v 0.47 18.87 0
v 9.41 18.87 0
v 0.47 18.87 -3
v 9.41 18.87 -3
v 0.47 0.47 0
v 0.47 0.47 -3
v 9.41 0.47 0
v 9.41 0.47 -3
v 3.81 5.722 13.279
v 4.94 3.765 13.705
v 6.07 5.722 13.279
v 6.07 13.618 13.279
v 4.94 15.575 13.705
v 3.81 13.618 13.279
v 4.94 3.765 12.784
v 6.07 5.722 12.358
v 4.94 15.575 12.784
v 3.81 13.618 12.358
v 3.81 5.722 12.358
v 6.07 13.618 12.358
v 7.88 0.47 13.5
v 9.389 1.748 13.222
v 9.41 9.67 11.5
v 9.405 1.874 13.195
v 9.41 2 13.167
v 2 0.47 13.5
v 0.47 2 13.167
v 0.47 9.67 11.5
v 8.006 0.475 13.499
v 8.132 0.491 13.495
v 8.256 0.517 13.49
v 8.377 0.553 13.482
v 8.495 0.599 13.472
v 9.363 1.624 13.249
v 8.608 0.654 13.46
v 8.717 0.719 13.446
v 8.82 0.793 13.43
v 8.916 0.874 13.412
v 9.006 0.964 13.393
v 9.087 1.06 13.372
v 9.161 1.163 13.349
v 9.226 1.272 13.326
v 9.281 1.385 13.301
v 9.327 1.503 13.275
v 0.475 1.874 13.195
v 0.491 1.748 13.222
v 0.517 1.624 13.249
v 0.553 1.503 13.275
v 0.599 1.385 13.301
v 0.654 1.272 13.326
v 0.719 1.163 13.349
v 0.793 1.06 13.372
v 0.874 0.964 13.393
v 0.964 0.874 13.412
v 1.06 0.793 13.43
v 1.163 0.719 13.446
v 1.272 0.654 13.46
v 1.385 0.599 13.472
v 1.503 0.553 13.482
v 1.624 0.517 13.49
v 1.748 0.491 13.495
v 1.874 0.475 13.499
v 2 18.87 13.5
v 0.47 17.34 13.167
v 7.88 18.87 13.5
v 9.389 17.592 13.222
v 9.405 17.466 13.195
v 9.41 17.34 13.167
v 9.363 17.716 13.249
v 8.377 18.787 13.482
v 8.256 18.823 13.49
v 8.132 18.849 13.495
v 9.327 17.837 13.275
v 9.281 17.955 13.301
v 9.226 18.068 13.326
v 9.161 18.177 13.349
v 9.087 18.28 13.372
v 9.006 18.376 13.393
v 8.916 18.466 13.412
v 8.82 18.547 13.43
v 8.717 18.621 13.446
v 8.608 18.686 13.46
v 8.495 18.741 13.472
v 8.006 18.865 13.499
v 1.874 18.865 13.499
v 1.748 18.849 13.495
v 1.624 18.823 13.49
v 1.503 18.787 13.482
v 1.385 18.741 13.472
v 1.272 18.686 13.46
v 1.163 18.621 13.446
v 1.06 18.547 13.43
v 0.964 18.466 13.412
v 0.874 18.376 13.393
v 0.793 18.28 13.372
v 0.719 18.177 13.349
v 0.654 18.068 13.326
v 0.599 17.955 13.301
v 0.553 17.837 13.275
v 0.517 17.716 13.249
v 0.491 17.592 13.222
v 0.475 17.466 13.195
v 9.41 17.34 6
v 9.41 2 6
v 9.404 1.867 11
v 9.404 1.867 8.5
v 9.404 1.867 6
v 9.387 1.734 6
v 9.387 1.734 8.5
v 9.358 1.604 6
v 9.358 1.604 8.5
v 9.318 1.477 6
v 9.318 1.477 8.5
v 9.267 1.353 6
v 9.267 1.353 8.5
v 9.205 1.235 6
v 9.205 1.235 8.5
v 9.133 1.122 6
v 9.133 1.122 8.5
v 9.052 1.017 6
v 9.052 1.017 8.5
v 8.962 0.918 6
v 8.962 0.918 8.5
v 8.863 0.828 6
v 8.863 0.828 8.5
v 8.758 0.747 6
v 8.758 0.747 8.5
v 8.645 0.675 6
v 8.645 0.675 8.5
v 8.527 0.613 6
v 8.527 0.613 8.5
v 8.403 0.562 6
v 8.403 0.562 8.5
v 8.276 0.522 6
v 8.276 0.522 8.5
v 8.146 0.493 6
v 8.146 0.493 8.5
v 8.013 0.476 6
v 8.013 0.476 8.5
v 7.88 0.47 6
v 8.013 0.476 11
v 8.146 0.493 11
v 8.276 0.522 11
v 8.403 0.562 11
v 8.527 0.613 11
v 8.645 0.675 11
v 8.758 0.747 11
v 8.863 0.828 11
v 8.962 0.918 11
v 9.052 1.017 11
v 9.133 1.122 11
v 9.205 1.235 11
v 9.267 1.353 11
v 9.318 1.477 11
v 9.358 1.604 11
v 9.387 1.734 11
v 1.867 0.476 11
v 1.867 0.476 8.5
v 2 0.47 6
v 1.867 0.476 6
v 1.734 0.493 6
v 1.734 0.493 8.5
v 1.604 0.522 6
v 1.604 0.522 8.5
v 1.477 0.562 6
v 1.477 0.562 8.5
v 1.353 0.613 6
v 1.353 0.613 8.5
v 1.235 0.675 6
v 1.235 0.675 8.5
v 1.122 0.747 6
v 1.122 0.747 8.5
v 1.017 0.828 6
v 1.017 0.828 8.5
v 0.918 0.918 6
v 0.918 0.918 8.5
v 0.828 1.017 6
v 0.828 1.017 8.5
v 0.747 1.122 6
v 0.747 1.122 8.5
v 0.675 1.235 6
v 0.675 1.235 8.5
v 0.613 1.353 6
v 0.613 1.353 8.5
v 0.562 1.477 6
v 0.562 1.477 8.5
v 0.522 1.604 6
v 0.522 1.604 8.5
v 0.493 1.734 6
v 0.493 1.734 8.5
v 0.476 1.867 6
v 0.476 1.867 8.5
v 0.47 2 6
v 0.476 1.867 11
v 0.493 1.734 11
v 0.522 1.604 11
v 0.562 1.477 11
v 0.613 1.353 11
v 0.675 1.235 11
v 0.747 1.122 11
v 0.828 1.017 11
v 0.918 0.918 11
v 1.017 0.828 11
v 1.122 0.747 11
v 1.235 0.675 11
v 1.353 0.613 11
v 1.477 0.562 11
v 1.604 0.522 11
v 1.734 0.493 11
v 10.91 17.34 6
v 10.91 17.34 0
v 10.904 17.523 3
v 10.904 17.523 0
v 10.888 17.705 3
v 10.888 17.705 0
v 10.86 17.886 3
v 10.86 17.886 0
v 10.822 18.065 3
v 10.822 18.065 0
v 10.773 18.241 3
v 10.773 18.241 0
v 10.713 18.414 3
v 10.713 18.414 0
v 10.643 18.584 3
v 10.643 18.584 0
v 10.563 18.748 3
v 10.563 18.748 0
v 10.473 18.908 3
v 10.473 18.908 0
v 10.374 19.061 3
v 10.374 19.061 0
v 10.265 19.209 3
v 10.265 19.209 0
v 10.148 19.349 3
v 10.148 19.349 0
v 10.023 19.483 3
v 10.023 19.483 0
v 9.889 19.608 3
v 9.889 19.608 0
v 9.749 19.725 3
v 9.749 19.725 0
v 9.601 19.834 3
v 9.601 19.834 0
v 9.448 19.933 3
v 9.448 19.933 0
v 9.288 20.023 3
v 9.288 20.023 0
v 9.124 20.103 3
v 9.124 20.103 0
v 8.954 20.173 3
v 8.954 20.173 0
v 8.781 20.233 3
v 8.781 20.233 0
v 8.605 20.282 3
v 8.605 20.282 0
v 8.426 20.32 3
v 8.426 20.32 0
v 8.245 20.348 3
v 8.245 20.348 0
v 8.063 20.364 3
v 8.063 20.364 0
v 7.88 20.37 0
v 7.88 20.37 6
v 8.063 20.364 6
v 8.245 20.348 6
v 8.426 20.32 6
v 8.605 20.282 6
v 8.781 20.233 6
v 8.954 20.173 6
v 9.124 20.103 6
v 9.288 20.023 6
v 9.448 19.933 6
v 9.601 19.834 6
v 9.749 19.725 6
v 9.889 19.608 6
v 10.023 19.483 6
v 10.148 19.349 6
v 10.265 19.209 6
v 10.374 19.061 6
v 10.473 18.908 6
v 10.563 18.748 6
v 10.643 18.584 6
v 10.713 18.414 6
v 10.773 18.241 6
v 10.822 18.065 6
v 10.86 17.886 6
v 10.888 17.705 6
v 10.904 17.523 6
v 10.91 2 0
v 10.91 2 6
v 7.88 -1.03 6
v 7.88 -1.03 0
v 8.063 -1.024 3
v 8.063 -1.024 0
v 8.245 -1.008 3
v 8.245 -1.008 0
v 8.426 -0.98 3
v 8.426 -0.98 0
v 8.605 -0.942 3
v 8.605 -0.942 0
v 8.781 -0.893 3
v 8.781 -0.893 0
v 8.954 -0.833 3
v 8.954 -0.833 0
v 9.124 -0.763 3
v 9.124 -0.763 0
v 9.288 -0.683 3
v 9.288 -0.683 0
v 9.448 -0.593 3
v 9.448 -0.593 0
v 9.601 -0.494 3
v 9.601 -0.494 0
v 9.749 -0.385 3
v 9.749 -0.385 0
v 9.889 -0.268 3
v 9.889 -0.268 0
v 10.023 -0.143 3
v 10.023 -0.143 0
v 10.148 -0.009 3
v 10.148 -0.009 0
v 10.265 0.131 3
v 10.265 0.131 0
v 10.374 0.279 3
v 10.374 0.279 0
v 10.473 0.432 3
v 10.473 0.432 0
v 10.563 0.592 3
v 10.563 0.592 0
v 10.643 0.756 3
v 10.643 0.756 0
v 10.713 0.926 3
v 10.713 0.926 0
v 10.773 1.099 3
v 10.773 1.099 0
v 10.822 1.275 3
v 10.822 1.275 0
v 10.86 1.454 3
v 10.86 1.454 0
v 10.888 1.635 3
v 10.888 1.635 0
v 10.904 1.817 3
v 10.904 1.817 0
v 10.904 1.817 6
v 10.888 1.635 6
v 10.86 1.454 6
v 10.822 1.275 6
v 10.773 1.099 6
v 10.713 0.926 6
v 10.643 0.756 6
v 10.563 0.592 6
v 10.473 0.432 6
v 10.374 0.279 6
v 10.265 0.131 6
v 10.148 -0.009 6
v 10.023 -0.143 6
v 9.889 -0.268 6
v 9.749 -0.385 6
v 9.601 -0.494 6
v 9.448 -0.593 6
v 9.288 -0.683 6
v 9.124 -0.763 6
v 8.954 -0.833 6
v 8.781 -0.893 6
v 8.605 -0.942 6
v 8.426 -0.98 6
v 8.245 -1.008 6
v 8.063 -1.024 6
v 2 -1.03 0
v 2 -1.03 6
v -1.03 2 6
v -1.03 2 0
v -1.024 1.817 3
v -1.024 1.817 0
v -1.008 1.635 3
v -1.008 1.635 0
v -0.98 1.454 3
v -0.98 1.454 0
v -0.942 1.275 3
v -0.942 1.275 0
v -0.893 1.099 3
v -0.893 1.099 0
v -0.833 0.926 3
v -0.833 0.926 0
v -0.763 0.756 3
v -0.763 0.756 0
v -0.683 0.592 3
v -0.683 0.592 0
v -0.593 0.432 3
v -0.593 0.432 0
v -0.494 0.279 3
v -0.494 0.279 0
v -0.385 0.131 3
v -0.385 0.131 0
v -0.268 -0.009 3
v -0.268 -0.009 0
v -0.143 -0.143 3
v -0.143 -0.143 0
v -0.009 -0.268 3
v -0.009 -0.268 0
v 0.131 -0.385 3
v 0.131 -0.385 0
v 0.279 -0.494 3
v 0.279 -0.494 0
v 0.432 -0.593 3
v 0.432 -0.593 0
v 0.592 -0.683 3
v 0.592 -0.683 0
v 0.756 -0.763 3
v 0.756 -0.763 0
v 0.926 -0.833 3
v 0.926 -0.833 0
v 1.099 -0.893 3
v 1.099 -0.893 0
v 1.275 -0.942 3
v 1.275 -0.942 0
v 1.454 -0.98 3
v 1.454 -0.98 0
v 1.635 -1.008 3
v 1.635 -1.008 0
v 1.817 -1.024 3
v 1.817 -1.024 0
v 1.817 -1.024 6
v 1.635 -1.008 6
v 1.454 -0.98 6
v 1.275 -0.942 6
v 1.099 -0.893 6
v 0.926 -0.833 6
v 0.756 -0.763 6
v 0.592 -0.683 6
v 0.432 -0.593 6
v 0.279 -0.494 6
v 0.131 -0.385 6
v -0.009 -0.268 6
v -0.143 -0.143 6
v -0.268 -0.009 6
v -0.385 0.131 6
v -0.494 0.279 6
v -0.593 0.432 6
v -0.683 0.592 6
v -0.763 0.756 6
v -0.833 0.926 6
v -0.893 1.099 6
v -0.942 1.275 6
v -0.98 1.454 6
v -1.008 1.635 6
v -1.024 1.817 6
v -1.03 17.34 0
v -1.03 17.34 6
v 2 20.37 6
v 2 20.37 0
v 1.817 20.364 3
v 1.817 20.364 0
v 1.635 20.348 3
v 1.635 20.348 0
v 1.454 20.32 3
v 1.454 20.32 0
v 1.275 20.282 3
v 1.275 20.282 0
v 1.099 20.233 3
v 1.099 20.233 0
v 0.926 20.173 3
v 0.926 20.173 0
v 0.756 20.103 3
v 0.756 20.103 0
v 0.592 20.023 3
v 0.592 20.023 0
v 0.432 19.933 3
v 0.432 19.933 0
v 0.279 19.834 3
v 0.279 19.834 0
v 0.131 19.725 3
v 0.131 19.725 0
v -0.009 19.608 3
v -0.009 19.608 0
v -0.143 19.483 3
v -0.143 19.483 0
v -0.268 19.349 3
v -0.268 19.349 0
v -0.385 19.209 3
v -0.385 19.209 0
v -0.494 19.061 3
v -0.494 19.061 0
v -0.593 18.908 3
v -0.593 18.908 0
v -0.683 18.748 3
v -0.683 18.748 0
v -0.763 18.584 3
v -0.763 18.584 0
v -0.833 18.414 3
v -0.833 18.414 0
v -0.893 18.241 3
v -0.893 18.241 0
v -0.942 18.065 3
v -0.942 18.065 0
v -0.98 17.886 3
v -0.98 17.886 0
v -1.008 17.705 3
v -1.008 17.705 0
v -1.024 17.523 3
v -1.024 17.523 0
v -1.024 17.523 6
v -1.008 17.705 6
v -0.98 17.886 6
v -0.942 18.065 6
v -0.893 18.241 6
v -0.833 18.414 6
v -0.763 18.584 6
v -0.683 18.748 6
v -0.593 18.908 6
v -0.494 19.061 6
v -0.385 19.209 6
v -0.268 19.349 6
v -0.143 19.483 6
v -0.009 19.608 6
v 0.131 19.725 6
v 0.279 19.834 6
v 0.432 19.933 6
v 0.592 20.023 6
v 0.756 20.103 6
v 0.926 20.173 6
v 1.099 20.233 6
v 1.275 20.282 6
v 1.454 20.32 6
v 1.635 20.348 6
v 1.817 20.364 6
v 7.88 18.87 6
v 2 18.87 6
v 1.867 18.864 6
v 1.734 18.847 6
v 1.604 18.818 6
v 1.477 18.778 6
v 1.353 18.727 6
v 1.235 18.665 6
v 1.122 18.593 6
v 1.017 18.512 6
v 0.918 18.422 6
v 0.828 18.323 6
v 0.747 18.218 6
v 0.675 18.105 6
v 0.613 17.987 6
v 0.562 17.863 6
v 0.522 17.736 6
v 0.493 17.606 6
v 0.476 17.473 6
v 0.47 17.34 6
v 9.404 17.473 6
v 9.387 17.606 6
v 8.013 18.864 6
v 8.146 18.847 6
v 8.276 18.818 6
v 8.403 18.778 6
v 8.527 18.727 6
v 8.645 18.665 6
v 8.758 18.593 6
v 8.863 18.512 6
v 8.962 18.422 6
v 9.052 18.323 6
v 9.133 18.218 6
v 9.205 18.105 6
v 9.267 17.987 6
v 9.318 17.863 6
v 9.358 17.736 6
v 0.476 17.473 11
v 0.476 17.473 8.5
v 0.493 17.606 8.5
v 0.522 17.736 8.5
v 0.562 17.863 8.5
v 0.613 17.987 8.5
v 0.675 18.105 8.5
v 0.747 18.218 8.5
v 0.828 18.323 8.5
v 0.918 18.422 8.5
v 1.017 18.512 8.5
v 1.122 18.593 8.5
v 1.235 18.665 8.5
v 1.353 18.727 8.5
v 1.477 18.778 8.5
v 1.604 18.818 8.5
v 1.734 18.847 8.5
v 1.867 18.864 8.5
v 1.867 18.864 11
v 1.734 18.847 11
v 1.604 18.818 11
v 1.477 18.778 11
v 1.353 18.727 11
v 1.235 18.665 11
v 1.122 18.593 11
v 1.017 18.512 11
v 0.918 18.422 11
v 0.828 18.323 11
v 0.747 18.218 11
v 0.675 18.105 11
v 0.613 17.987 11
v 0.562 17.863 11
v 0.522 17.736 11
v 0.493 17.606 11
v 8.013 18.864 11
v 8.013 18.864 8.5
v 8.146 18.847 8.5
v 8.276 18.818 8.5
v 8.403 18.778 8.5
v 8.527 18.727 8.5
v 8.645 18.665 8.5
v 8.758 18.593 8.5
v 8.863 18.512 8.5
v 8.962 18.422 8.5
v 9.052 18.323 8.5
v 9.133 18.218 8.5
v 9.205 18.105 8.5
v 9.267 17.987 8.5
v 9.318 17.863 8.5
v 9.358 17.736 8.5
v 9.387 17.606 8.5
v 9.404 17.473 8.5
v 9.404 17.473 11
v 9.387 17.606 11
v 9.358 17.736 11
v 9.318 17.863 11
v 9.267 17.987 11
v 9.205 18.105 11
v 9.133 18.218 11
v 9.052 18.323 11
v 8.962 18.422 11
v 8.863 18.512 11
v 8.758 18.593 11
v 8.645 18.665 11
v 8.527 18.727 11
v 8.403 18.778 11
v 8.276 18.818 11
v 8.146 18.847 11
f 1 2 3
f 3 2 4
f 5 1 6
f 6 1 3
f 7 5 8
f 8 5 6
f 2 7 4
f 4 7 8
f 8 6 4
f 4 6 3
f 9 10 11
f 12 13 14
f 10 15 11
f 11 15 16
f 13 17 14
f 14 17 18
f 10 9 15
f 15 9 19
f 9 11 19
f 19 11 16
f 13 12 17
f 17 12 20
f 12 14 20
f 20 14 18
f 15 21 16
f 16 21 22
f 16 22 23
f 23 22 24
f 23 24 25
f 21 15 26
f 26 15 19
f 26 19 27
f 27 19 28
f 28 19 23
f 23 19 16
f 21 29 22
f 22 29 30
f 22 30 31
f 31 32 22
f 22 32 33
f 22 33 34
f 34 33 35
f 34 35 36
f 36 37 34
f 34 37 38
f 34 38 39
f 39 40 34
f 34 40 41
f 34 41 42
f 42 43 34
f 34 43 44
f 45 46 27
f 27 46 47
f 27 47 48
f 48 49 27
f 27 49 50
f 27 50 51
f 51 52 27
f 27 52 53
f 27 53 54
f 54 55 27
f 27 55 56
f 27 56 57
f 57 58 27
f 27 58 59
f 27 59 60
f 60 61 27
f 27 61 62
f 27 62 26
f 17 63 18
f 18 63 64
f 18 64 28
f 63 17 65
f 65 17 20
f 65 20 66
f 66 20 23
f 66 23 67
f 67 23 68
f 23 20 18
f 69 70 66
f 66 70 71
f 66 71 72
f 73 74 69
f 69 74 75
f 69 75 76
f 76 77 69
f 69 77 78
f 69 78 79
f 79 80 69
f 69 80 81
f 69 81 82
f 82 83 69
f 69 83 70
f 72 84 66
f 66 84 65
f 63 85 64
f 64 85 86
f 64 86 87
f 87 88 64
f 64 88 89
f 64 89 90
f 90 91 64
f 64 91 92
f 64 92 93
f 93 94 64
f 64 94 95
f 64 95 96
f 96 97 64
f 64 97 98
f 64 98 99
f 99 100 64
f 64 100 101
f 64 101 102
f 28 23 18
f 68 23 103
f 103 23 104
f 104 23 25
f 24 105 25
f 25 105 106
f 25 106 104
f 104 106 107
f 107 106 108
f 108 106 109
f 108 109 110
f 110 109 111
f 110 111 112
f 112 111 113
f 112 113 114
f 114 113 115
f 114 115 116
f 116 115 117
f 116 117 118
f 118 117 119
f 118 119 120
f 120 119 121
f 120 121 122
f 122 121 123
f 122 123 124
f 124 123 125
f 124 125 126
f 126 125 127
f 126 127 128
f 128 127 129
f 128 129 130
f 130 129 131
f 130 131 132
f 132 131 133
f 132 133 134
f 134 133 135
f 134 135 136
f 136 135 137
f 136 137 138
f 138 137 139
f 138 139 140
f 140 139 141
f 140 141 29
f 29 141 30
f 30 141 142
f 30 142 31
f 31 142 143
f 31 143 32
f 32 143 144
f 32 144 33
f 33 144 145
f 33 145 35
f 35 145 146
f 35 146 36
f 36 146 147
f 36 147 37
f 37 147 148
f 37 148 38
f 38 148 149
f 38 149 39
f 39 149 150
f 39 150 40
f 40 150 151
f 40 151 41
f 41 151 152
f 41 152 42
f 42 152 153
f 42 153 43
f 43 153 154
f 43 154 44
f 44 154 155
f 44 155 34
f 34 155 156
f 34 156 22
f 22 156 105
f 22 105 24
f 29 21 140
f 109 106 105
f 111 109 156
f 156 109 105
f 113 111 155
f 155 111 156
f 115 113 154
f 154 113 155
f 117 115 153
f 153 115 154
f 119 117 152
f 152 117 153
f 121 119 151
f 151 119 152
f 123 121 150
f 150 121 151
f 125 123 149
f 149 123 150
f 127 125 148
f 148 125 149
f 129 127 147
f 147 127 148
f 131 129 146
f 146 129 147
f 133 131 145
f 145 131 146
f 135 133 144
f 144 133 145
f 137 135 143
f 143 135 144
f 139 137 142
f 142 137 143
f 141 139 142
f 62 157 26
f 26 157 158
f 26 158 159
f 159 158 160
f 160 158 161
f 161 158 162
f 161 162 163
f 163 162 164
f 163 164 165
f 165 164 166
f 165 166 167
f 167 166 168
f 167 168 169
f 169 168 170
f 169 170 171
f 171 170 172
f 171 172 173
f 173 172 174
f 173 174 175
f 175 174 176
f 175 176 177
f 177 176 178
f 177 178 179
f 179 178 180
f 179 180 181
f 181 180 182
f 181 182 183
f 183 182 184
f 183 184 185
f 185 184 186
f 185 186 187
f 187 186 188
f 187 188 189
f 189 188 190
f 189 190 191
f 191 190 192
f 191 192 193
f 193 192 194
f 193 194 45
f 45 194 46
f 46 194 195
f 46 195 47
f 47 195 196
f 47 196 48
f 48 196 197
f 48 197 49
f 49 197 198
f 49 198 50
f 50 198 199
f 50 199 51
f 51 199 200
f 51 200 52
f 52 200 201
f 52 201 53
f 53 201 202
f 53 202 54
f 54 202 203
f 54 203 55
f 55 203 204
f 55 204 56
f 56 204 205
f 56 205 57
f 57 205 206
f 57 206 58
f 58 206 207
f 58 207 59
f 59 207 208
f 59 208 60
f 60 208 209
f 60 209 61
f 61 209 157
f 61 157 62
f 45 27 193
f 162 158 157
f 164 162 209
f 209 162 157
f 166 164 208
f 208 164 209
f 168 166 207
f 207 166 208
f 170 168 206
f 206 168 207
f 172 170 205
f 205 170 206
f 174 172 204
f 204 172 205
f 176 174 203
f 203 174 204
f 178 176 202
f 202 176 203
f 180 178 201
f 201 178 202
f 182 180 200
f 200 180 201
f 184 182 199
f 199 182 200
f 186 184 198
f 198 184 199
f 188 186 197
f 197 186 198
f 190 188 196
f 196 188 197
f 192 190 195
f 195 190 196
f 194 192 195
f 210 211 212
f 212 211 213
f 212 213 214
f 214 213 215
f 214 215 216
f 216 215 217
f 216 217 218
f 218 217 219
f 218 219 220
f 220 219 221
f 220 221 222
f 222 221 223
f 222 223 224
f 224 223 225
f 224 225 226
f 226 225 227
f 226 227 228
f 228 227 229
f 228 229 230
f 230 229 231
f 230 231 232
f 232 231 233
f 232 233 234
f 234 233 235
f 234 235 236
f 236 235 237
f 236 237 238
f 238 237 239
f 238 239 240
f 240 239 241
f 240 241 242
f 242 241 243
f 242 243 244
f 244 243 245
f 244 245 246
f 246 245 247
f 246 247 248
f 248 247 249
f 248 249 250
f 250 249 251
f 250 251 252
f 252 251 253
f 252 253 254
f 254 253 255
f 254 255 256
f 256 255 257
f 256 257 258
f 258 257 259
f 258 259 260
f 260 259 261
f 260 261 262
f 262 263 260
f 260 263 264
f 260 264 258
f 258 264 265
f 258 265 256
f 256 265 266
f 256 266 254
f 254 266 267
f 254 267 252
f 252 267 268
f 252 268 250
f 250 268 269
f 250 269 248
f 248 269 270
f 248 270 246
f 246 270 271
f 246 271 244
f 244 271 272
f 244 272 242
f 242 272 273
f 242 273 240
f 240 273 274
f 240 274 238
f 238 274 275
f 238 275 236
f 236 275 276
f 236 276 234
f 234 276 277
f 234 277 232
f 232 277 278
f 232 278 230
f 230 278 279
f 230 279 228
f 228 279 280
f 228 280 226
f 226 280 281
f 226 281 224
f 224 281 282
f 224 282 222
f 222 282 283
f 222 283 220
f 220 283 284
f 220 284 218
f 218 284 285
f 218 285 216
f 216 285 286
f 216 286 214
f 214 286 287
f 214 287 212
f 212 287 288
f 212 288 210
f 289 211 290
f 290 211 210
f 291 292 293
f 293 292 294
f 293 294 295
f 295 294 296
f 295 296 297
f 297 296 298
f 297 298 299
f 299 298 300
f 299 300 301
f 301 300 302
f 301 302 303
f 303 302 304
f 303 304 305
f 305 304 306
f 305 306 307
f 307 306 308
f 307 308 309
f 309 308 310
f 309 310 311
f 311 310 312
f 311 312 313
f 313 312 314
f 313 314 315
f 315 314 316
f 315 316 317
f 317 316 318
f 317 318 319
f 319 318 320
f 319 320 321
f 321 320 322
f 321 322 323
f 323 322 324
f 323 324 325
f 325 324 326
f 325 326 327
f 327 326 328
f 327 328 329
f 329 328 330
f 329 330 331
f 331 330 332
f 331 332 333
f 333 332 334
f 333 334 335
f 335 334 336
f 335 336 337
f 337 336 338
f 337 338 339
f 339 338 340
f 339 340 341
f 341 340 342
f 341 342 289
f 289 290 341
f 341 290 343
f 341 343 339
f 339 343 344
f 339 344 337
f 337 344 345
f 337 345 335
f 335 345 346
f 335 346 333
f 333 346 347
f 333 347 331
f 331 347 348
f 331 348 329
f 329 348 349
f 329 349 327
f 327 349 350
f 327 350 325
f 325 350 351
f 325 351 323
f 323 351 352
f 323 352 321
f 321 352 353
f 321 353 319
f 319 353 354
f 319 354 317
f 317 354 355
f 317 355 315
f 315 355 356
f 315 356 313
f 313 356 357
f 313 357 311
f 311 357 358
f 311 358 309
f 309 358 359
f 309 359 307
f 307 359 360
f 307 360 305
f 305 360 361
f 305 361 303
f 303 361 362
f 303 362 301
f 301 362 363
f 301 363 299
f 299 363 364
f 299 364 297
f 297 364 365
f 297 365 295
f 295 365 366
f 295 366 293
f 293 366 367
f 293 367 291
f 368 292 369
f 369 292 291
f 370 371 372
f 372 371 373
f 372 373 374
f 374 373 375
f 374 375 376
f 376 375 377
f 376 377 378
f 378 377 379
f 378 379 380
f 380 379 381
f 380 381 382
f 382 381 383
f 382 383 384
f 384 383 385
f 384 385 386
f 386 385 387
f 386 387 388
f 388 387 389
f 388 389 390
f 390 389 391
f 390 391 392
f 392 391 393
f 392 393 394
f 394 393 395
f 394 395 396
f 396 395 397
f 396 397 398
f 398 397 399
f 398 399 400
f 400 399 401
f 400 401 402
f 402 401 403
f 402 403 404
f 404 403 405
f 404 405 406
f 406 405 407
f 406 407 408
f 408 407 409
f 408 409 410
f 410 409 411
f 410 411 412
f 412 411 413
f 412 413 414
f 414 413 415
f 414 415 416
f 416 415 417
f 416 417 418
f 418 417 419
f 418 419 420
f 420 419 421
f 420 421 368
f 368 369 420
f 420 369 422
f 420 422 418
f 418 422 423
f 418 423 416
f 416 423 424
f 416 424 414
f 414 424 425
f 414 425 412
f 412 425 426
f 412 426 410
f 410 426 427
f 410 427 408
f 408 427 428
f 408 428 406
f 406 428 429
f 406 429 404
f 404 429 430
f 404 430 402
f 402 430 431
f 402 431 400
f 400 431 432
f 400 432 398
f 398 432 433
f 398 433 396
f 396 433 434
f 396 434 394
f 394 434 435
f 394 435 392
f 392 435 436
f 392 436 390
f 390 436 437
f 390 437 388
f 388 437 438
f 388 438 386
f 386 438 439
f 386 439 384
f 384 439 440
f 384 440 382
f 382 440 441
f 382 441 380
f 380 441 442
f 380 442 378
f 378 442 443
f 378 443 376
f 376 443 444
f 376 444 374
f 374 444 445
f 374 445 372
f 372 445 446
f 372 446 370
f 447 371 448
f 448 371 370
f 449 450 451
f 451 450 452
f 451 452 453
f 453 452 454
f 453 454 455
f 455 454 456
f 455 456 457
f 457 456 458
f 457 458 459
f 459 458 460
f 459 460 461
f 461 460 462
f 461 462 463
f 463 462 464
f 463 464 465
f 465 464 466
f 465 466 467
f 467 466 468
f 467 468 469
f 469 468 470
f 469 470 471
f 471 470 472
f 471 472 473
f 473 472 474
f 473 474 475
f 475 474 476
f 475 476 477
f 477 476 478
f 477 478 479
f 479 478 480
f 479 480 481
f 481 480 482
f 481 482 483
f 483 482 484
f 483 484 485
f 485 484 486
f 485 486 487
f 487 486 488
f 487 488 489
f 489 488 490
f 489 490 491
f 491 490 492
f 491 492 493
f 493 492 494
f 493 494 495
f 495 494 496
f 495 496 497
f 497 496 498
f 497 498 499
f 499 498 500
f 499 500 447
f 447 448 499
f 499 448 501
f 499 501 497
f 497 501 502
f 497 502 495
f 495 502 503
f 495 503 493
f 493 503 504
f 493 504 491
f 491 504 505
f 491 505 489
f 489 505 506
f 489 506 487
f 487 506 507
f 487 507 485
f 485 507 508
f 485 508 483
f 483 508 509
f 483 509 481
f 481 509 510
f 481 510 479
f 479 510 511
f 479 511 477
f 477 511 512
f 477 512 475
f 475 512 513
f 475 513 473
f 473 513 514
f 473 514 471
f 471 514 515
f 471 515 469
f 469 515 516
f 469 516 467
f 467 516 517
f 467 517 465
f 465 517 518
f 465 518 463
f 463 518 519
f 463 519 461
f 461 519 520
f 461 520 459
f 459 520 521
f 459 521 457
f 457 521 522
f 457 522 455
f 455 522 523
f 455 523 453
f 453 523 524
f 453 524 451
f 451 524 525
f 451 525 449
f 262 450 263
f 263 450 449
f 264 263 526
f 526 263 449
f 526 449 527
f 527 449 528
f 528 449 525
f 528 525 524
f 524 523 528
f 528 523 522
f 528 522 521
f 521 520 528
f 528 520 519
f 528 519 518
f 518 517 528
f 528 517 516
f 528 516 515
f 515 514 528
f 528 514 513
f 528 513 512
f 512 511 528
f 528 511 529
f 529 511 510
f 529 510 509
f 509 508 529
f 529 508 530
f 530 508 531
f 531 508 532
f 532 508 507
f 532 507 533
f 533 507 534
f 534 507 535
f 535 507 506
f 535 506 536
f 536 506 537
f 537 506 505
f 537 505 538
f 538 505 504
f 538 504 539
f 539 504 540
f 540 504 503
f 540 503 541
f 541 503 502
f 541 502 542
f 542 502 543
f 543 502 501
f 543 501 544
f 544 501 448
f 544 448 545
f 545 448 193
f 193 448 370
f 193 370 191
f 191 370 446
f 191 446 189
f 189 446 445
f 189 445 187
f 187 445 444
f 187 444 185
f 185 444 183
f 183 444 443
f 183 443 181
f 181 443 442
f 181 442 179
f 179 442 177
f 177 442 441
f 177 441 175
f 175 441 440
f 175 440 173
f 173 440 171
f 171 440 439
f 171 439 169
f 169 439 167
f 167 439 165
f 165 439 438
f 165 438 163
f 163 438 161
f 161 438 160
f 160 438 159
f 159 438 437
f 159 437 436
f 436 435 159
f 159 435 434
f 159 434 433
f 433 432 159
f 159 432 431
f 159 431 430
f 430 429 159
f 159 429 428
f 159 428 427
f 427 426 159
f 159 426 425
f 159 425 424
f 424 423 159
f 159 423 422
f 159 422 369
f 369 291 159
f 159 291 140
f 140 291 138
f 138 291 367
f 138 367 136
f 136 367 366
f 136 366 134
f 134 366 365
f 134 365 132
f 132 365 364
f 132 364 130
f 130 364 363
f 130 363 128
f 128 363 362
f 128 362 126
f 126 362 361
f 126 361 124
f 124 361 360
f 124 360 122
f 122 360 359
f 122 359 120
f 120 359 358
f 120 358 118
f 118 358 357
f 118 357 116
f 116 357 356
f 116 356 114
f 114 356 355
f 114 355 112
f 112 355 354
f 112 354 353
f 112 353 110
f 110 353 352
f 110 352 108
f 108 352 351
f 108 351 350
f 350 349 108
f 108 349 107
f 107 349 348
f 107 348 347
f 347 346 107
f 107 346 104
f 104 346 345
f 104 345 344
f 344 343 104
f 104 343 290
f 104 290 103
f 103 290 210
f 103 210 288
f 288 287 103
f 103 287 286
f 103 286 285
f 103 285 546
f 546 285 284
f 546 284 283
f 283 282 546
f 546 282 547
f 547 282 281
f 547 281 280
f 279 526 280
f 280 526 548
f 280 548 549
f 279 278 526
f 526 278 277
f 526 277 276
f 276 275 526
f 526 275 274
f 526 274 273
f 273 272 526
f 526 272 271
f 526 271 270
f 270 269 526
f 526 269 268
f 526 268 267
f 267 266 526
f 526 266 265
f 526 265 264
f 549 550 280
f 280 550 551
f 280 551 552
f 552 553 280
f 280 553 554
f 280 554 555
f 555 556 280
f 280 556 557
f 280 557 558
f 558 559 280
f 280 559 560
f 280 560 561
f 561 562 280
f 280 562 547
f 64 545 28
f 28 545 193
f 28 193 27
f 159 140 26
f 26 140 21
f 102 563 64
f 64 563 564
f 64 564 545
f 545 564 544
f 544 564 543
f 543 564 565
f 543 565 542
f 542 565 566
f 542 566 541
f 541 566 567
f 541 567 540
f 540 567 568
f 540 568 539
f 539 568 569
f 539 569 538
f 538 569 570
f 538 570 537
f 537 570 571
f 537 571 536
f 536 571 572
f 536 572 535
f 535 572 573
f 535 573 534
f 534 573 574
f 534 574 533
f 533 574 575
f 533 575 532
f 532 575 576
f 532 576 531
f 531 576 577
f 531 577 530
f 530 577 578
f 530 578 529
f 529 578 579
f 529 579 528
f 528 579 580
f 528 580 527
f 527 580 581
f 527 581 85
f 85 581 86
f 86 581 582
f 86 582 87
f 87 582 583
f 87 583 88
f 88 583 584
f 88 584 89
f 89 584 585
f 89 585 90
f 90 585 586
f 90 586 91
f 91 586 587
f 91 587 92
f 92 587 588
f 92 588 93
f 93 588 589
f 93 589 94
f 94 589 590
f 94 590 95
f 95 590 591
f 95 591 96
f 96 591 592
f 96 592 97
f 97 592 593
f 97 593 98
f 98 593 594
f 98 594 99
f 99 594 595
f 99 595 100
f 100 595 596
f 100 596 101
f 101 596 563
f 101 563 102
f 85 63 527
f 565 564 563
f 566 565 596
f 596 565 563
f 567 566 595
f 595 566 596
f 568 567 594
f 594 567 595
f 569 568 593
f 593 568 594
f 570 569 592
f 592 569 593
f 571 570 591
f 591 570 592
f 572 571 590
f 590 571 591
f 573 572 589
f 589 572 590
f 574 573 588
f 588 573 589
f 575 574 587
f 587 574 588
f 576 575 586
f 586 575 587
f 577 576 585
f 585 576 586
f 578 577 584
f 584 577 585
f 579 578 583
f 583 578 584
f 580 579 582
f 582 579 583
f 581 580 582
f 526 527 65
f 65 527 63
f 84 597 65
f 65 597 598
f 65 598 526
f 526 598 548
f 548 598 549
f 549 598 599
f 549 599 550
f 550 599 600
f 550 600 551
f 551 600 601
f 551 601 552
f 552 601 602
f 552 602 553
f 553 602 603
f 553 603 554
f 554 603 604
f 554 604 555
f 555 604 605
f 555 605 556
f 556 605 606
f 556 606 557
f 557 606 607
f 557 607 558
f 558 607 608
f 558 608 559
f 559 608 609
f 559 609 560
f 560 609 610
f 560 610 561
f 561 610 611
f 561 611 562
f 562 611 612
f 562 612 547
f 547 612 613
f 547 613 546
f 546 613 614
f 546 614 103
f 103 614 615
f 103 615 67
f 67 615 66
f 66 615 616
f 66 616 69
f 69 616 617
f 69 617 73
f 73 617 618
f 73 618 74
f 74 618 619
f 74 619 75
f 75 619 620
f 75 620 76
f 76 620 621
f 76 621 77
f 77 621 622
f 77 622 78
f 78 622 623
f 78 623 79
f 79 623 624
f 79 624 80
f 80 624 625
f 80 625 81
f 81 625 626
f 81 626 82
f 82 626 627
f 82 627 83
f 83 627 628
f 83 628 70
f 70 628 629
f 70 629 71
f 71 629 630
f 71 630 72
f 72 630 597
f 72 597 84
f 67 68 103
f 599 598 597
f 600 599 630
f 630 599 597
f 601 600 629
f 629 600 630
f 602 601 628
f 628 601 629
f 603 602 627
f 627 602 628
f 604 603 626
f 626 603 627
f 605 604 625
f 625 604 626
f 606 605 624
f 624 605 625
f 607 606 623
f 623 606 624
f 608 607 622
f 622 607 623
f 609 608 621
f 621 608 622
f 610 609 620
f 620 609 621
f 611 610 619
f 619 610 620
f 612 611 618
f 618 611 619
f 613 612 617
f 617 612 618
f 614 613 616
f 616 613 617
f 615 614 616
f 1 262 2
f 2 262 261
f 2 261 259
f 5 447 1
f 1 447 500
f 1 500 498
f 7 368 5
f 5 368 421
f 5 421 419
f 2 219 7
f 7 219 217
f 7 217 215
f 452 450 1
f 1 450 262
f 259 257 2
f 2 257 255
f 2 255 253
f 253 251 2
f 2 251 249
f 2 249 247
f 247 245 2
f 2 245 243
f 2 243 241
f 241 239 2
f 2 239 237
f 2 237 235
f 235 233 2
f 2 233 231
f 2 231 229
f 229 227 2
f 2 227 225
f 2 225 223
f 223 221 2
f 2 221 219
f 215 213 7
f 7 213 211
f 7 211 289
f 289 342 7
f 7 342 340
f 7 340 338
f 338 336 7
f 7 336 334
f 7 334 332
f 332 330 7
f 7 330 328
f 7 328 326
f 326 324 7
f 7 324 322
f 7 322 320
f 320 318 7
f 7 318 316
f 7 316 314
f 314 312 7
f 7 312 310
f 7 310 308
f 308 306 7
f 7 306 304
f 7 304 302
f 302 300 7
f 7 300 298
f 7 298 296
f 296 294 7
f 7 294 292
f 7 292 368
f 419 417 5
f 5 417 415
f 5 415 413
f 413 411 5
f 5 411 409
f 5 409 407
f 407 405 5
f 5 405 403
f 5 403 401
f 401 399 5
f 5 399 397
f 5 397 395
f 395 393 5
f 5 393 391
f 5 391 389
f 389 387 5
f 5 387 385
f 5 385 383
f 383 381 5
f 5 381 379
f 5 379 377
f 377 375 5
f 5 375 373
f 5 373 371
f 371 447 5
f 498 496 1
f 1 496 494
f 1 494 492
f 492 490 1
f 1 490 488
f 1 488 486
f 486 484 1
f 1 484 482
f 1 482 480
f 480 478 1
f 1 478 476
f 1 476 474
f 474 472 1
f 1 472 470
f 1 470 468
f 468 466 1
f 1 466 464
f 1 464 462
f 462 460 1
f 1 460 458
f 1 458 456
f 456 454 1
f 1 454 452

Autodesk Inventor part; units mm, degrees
ref_plane "YZ Plane" through (0, 0, 0) normal (1, 0, 0) x (0, 1, 0)
ref_plane "XZ Plane" through (0, 0, 0) normal (0, 1, 0) x (-1, 0, 0)
ref_plane "XY Plane" through (0, 0, 0) normal (0, 0, 1) x (1, 0, 0)
sketch "Sketch1" plane through (0, 0, 0) normal (0, 0, 1) x (1, 0, 0)
  line L0 (7.88, 0) -> (2, 0)
  arc A0 (7.88, 0) -> (9.88, 2) centre (7.88, 2) ccw
  line L1 (9.88, 17.34) -> (9.88, 2)
  arc A1 (9.88, 17.34) -> (7.88, 19.34) centre (7.88, 17.34) ccw
  line L2 (2, 19.34) -> (7.88, 19.34)
  arc A2 (2, 19.34) -> (0, 17.34) centre (2, 17.34) ccw
  line L3 (0, 2) -> (0, 17.34)
  arc A3 (0, 2) -> (2, 0) centre (2, 2) ccw
  line L4 (0.47, 17.34) -> (0.47, 2)
  arc A4 (0.47, 2) -> (2, 0.47) centre (2, 2) ccw
  line L5 (2, 0.47) -> (7.88, 0.47)
  arc A5 (7.88, 0.47) -> (9.41, 2) centre (7.88, 2) ccw
  line L6 (9.41, 2) -> (9.41, 17.34)
  arc A6 (9.41, 17.34) -> (7.88, 18.87) centre (7.88, 17.34) ccw
  line L7 (7.88, 18.87) -> (2, 18.87)
  arc A7 (2, 18.87) -> (0.47, 17.34) centre (2, 17.34) ccw
  point P0 (0, 0)
  point P1 (0, 0)
  point P2 (0, 0)
  dimension "d0" = 0.47
extrude "Extrusion1" add sketch "Sketch1" along normal blind 13.5 contours A7 L7 A6 L6 A5 L5 A4 L4
sketch "Sketch2" plane through (0, 0, 0) normal (0, 0, -1) x (-1, 0, 0)
  arc A0 (-2, 0.47) -> (-0.47, 2) centre (-2, 2) ccw projected
  line L0 (-0.47, 17.34) -> (-0.47, 2) projected
  arc A1 (-0.47, 17.34) -> (-2, 18.87) centre (-2, 17.34) ccw projected
  line L1 (-7.88, 18.87) -> (-2, 18.87) projected
  arc A2 (-7.88, 18.87) -> (-9.41, 17.34) centre (-7.88, 17.34) ccw projected
  line L2 (-9.41, 2) -> (-9.41, 17.34) projected
  arc A3 (-9.41, 2) -> (-7.88, 0.47) centre (-7.88, 2) ccw projected
  line L3 (-2, 0.47) -> (-7.88, 0.47) projected
  arc A4 (-7.88, 20.37) -> (-10.91, 17.34) centre (-7.88, 17.34) ccw
  line L4 (-7.88, 20.37) -> (-2, 20.37)
  arc A5 (1.03, 17.34) -> (-2, 20.37) centre (-2, 17.34) ccw
  line L5 (1.03, 17.34) -> (1.03, 2)
  arc A6 (-2, -1.03) -> (1.03, 2) centre (-2, 2) ccw
  line L6 (-2, -1.03) -> (-7.88, -1.03)
  arc A7 (-10.91, 2) -> (-7.88, -1.03) centre (-7.88, 2) ccw
  line L7 (-10.91, 2) -> (-10.91, 17.34)
  point P0 (0, 0)
  dimension "d3" = 1.5
extrude "Extrusion2" add sketch "Sketch2" against normal blind 6
sketch "Sketch3" plane through (9.41, 2, 13.5) normal (1, 0, 0) x (0, 0, -1)
  line L0 (0, 0) -> (0, 15.34) projected
  line L1 (0, 7.67) -> (2, 7.67) construction
  line L2 (7.5, 16.87) -> (0, 16.87) projected
  line L3 (2, 7.67) -> (0, 16.87)
  line L4 (0, 0) -> (0, -1.53) projected
  line L5 (2, 7.67) -> (0, -1.53)
  line L6 (0, 16.87) -> (0, 15.34) projected
  line L7 (0, 16.87) -> (0, -1.53)
  point P0 (13.5, -2)
  dimension "d6" = 2
extrude "Extrusion3" cut sketch "Sketch3" against normal blind 9.175
sketch "Sketch4" plane through (0, 0, 6) normal (0, 0, 1) x (1, 0, 0)
  line L0 (9.41, 9.67) -> (0.47, 9.67) projected
  arc A0 (9.41, 17.34) -> (7.88, 18.87) centre (7.88, 17.34) ccw projected
  line L1 (7.88, 18.87) -> (2, 18.87) projected
  arc A1 (2, 18.87) -> (0.47, 17.34) centre (2, 17.34) ccw projected
  line L2 (0.47, 9.67) -> (0.47, 17.34) projected
  line L3 (9.41, 9.67) -> (0.47, 9.67) projected
  line L4 (9.41, 17.34) -> (9.41, 9.67) projected
  line L5 (13.6871, 9.67) -> (13.6871, 18.87)
  line L6 (4.94, 15.5745) -> (6.0697, 13.6177)
  line L7 (6.0697, 13.6177) -> (3.8103, 13.6177)
  line L8 (3.8103, 13.6177) -> (4.94, 15.5745)
  line L9 (-3.6206, 9.67) -> (18.3642, 9.67)
  line L10 (4.94, 3.7655) -> (6.0697, 5.7223)
  line L11 (6.0697, 5.7223) -> (3.8103, 5.7223)
  line L12 (3.8103, 5.7223) -> (4.94, 3.7655)
  point P0 (0, 0)
  point P1 (4.94, 9.67)
  point P2 (13.6871, 14.27)
  point P3 (4.94, 14.27)
  point P4 (4.94, 14.27)
  point P5 (4.94, 5.07)
  point P6 (4.94, 5.07)
extrude "Extrusion4" add sketch "Sketch4" along normal blind 10.7625 contours L6 L7 L8 | L12 L11 L10
sketch "Sketch5" plane through (9.41, 2, 6) normal (1, 0, 0) x (0, 0, -1)
  line L0 (-7.1674, 15.34) -> (-5.5, 7.67) projected
  line L1 (-5.5, 7.67) -> (-7.1674, 0) projected
  line L2 (-8.0469, 15.1488) -> (-6.421, 7.67)
  line L3 (-6.421, 7.67) -> (-8.0469, 0.1912)
  line L4 (-8.0469, 15.1488) -> (-12.9814, 15.34)
  line L5 (-12.9814, 15.34) -> (-12.7678, -1.5252)
  line L6 (-12.7678, -1.5252) -> (-8.0469, 0.1912)
  point P0 (6, -2)
  dimension "d11" = 0.9
extrude "Extrusion5" cut sketch "Sketch5" against normal blind 10.7625
sketch "Sketch6" plane through (0, 0, 0) normal (0, 0, -1) x (-1, 0, 0)
  line L0 (1.03, 17.34) -> (1.03, 2) projected
  line L1 (-2, -1.03) -> (-7.88, -1.03) construction
  line L2 (-9.41, 9.67) -> (-0.47, 9.67) construction
  line L3 (-9.88, 19.34) -> (0, 19.34) construction
  line L4 (0, 19.34) -> (0, 0) construction
  line L5 (0, 0) -> (-9.88, 0) construction
  line L6 (-9.88, 0) -> (-9.88, 19.34) construction
  line L7 (-9.88, 19.34) -> (0, 0) construction
  line L8 (0, 19.34) -> (-9.88, 0) construction
  line L9 (-0.47, 18.87) -> (-9.41, 18.87)
  line L10 (-9.41, 18.87) -> (-9.41, 0.47)
  line L11 (-9.41, 0.47) -> (-0.47, 0.47)
  line L12 (-0.47, 0.47) -> (-0.47, 18.87)
  point P0 (1.03, 9.67)
  point P1 (-4.94, -1.03)
  point P2 (-4.94, 9.67)
  dimension "d14" = 9.88
  dimension "d15" = 19.34
  dimension "d16" = 0.47
extrude "Extrusion6" add sketch "Sketch6" along normal blind 3
properties part number "IPC dumb rocker switch"
